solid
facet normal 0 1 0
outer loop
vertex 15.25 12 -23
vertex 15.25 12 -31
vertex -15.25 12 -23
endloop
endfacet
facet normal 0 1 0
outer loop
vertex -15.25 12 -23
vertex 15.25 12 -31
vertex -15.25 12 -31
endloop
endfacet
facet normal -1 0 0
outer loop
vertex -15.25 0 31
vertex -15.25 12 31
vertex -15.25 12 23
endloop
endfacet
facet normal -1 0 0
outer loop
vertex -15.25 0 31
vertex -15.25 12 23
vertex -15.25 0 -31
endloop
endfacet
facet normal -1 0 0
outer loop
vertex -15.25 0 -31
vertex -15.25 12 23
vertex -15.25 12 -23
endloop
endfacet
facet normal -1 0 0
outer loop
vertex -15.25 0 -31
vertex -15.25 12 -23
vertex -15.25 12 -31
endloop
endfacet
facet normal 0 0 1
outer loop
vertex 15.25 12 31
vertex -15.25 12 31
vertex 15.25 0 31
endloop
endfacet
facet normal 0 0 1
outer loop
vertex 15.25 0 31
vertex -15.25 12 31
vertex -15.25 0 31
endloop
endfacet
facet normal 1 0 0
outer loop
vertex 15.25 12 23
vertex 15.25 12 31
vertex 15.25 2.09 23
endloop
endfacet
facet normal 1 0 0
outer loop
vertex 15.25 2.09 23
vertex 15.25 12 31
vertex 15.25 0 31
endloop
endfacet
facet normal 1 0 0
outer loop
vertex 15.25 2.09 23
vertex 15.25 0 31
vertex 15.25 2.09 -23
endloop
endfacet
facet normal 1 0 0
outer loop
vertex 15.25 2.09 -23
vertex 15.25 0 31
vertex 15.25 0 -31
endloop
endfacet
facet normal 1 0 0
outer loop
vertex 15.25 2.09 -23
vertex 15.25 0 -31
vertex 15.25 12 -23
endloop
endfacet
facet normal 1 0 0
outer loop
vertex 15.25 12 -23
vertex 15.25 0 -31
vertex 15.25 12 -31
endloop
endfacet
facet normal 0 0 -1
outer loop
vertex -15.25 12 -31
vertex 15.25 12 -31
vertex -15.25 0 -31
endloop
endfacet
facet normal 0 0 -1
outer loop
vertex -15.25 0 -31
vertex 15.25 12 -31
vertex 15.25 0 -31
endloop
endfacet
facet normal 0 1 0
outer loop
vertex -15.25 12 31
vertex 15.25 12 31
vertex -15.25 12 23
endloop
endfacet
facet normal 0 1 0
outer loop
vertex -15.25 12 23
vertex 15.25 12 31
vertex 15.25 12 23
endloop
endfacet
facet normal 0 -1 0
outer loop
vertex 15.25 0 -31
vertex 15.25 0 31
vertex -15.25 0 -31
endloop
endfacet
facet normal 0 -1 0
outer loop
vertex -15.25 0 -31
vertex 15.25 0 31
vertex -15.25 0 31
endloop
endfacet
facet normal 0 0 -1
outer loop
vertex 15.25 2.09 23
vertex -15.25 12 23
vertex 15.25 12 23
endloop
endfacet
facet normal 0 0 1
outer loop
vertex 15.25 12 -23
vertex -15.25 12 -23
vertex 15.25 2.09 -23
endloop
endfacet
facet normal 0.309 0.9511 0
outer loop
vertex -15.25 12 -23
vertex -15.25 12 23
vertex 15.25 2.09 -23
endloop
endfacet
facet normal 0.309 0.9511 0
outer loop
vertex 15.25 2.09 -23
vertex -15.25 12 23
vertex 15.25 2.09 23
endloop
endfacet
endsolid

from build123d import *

# Parameters (mm, degrees)
SKETCH1_W           = 30.5
SKETCH1_H           = 62
BOSS_EXTRUDE1_DEPTH = 12
CUT_EXTRUDE1_START  = -46
CUT_EXTRUDE1_DEPTH  = 46


with BuildPart() as part:
    # Sketch1 → Boss-Extrude1 (new body)
    with BuildSketch(Plane(origin=(0, 0, 0), x_dir=(1, 0, 0), z_dir=(0, 1, 0))):
        Rectangle(SKETCH1_W, SKETCH1_H)
    extrude(amount=BOSS_EXTRUDE1_DEPTH)

    # Sketch2 → Cut-Extrude1 (cut)
    with BuildSketch(Plane(origin=(0, 0, -23), x_dir=(-1, 0, 0), z_dir=(0, 0, -1)).offset(CUT_EXTRUDE1_START)):
        Polygon((-15.25, 12), (15.25, 12), (-15.25, 2.089949265), align=None)
    extrude(amount=CUT_EXTRUDE1_DEPTH, mode=Mode.SUBTRACT)


solid = part.part
